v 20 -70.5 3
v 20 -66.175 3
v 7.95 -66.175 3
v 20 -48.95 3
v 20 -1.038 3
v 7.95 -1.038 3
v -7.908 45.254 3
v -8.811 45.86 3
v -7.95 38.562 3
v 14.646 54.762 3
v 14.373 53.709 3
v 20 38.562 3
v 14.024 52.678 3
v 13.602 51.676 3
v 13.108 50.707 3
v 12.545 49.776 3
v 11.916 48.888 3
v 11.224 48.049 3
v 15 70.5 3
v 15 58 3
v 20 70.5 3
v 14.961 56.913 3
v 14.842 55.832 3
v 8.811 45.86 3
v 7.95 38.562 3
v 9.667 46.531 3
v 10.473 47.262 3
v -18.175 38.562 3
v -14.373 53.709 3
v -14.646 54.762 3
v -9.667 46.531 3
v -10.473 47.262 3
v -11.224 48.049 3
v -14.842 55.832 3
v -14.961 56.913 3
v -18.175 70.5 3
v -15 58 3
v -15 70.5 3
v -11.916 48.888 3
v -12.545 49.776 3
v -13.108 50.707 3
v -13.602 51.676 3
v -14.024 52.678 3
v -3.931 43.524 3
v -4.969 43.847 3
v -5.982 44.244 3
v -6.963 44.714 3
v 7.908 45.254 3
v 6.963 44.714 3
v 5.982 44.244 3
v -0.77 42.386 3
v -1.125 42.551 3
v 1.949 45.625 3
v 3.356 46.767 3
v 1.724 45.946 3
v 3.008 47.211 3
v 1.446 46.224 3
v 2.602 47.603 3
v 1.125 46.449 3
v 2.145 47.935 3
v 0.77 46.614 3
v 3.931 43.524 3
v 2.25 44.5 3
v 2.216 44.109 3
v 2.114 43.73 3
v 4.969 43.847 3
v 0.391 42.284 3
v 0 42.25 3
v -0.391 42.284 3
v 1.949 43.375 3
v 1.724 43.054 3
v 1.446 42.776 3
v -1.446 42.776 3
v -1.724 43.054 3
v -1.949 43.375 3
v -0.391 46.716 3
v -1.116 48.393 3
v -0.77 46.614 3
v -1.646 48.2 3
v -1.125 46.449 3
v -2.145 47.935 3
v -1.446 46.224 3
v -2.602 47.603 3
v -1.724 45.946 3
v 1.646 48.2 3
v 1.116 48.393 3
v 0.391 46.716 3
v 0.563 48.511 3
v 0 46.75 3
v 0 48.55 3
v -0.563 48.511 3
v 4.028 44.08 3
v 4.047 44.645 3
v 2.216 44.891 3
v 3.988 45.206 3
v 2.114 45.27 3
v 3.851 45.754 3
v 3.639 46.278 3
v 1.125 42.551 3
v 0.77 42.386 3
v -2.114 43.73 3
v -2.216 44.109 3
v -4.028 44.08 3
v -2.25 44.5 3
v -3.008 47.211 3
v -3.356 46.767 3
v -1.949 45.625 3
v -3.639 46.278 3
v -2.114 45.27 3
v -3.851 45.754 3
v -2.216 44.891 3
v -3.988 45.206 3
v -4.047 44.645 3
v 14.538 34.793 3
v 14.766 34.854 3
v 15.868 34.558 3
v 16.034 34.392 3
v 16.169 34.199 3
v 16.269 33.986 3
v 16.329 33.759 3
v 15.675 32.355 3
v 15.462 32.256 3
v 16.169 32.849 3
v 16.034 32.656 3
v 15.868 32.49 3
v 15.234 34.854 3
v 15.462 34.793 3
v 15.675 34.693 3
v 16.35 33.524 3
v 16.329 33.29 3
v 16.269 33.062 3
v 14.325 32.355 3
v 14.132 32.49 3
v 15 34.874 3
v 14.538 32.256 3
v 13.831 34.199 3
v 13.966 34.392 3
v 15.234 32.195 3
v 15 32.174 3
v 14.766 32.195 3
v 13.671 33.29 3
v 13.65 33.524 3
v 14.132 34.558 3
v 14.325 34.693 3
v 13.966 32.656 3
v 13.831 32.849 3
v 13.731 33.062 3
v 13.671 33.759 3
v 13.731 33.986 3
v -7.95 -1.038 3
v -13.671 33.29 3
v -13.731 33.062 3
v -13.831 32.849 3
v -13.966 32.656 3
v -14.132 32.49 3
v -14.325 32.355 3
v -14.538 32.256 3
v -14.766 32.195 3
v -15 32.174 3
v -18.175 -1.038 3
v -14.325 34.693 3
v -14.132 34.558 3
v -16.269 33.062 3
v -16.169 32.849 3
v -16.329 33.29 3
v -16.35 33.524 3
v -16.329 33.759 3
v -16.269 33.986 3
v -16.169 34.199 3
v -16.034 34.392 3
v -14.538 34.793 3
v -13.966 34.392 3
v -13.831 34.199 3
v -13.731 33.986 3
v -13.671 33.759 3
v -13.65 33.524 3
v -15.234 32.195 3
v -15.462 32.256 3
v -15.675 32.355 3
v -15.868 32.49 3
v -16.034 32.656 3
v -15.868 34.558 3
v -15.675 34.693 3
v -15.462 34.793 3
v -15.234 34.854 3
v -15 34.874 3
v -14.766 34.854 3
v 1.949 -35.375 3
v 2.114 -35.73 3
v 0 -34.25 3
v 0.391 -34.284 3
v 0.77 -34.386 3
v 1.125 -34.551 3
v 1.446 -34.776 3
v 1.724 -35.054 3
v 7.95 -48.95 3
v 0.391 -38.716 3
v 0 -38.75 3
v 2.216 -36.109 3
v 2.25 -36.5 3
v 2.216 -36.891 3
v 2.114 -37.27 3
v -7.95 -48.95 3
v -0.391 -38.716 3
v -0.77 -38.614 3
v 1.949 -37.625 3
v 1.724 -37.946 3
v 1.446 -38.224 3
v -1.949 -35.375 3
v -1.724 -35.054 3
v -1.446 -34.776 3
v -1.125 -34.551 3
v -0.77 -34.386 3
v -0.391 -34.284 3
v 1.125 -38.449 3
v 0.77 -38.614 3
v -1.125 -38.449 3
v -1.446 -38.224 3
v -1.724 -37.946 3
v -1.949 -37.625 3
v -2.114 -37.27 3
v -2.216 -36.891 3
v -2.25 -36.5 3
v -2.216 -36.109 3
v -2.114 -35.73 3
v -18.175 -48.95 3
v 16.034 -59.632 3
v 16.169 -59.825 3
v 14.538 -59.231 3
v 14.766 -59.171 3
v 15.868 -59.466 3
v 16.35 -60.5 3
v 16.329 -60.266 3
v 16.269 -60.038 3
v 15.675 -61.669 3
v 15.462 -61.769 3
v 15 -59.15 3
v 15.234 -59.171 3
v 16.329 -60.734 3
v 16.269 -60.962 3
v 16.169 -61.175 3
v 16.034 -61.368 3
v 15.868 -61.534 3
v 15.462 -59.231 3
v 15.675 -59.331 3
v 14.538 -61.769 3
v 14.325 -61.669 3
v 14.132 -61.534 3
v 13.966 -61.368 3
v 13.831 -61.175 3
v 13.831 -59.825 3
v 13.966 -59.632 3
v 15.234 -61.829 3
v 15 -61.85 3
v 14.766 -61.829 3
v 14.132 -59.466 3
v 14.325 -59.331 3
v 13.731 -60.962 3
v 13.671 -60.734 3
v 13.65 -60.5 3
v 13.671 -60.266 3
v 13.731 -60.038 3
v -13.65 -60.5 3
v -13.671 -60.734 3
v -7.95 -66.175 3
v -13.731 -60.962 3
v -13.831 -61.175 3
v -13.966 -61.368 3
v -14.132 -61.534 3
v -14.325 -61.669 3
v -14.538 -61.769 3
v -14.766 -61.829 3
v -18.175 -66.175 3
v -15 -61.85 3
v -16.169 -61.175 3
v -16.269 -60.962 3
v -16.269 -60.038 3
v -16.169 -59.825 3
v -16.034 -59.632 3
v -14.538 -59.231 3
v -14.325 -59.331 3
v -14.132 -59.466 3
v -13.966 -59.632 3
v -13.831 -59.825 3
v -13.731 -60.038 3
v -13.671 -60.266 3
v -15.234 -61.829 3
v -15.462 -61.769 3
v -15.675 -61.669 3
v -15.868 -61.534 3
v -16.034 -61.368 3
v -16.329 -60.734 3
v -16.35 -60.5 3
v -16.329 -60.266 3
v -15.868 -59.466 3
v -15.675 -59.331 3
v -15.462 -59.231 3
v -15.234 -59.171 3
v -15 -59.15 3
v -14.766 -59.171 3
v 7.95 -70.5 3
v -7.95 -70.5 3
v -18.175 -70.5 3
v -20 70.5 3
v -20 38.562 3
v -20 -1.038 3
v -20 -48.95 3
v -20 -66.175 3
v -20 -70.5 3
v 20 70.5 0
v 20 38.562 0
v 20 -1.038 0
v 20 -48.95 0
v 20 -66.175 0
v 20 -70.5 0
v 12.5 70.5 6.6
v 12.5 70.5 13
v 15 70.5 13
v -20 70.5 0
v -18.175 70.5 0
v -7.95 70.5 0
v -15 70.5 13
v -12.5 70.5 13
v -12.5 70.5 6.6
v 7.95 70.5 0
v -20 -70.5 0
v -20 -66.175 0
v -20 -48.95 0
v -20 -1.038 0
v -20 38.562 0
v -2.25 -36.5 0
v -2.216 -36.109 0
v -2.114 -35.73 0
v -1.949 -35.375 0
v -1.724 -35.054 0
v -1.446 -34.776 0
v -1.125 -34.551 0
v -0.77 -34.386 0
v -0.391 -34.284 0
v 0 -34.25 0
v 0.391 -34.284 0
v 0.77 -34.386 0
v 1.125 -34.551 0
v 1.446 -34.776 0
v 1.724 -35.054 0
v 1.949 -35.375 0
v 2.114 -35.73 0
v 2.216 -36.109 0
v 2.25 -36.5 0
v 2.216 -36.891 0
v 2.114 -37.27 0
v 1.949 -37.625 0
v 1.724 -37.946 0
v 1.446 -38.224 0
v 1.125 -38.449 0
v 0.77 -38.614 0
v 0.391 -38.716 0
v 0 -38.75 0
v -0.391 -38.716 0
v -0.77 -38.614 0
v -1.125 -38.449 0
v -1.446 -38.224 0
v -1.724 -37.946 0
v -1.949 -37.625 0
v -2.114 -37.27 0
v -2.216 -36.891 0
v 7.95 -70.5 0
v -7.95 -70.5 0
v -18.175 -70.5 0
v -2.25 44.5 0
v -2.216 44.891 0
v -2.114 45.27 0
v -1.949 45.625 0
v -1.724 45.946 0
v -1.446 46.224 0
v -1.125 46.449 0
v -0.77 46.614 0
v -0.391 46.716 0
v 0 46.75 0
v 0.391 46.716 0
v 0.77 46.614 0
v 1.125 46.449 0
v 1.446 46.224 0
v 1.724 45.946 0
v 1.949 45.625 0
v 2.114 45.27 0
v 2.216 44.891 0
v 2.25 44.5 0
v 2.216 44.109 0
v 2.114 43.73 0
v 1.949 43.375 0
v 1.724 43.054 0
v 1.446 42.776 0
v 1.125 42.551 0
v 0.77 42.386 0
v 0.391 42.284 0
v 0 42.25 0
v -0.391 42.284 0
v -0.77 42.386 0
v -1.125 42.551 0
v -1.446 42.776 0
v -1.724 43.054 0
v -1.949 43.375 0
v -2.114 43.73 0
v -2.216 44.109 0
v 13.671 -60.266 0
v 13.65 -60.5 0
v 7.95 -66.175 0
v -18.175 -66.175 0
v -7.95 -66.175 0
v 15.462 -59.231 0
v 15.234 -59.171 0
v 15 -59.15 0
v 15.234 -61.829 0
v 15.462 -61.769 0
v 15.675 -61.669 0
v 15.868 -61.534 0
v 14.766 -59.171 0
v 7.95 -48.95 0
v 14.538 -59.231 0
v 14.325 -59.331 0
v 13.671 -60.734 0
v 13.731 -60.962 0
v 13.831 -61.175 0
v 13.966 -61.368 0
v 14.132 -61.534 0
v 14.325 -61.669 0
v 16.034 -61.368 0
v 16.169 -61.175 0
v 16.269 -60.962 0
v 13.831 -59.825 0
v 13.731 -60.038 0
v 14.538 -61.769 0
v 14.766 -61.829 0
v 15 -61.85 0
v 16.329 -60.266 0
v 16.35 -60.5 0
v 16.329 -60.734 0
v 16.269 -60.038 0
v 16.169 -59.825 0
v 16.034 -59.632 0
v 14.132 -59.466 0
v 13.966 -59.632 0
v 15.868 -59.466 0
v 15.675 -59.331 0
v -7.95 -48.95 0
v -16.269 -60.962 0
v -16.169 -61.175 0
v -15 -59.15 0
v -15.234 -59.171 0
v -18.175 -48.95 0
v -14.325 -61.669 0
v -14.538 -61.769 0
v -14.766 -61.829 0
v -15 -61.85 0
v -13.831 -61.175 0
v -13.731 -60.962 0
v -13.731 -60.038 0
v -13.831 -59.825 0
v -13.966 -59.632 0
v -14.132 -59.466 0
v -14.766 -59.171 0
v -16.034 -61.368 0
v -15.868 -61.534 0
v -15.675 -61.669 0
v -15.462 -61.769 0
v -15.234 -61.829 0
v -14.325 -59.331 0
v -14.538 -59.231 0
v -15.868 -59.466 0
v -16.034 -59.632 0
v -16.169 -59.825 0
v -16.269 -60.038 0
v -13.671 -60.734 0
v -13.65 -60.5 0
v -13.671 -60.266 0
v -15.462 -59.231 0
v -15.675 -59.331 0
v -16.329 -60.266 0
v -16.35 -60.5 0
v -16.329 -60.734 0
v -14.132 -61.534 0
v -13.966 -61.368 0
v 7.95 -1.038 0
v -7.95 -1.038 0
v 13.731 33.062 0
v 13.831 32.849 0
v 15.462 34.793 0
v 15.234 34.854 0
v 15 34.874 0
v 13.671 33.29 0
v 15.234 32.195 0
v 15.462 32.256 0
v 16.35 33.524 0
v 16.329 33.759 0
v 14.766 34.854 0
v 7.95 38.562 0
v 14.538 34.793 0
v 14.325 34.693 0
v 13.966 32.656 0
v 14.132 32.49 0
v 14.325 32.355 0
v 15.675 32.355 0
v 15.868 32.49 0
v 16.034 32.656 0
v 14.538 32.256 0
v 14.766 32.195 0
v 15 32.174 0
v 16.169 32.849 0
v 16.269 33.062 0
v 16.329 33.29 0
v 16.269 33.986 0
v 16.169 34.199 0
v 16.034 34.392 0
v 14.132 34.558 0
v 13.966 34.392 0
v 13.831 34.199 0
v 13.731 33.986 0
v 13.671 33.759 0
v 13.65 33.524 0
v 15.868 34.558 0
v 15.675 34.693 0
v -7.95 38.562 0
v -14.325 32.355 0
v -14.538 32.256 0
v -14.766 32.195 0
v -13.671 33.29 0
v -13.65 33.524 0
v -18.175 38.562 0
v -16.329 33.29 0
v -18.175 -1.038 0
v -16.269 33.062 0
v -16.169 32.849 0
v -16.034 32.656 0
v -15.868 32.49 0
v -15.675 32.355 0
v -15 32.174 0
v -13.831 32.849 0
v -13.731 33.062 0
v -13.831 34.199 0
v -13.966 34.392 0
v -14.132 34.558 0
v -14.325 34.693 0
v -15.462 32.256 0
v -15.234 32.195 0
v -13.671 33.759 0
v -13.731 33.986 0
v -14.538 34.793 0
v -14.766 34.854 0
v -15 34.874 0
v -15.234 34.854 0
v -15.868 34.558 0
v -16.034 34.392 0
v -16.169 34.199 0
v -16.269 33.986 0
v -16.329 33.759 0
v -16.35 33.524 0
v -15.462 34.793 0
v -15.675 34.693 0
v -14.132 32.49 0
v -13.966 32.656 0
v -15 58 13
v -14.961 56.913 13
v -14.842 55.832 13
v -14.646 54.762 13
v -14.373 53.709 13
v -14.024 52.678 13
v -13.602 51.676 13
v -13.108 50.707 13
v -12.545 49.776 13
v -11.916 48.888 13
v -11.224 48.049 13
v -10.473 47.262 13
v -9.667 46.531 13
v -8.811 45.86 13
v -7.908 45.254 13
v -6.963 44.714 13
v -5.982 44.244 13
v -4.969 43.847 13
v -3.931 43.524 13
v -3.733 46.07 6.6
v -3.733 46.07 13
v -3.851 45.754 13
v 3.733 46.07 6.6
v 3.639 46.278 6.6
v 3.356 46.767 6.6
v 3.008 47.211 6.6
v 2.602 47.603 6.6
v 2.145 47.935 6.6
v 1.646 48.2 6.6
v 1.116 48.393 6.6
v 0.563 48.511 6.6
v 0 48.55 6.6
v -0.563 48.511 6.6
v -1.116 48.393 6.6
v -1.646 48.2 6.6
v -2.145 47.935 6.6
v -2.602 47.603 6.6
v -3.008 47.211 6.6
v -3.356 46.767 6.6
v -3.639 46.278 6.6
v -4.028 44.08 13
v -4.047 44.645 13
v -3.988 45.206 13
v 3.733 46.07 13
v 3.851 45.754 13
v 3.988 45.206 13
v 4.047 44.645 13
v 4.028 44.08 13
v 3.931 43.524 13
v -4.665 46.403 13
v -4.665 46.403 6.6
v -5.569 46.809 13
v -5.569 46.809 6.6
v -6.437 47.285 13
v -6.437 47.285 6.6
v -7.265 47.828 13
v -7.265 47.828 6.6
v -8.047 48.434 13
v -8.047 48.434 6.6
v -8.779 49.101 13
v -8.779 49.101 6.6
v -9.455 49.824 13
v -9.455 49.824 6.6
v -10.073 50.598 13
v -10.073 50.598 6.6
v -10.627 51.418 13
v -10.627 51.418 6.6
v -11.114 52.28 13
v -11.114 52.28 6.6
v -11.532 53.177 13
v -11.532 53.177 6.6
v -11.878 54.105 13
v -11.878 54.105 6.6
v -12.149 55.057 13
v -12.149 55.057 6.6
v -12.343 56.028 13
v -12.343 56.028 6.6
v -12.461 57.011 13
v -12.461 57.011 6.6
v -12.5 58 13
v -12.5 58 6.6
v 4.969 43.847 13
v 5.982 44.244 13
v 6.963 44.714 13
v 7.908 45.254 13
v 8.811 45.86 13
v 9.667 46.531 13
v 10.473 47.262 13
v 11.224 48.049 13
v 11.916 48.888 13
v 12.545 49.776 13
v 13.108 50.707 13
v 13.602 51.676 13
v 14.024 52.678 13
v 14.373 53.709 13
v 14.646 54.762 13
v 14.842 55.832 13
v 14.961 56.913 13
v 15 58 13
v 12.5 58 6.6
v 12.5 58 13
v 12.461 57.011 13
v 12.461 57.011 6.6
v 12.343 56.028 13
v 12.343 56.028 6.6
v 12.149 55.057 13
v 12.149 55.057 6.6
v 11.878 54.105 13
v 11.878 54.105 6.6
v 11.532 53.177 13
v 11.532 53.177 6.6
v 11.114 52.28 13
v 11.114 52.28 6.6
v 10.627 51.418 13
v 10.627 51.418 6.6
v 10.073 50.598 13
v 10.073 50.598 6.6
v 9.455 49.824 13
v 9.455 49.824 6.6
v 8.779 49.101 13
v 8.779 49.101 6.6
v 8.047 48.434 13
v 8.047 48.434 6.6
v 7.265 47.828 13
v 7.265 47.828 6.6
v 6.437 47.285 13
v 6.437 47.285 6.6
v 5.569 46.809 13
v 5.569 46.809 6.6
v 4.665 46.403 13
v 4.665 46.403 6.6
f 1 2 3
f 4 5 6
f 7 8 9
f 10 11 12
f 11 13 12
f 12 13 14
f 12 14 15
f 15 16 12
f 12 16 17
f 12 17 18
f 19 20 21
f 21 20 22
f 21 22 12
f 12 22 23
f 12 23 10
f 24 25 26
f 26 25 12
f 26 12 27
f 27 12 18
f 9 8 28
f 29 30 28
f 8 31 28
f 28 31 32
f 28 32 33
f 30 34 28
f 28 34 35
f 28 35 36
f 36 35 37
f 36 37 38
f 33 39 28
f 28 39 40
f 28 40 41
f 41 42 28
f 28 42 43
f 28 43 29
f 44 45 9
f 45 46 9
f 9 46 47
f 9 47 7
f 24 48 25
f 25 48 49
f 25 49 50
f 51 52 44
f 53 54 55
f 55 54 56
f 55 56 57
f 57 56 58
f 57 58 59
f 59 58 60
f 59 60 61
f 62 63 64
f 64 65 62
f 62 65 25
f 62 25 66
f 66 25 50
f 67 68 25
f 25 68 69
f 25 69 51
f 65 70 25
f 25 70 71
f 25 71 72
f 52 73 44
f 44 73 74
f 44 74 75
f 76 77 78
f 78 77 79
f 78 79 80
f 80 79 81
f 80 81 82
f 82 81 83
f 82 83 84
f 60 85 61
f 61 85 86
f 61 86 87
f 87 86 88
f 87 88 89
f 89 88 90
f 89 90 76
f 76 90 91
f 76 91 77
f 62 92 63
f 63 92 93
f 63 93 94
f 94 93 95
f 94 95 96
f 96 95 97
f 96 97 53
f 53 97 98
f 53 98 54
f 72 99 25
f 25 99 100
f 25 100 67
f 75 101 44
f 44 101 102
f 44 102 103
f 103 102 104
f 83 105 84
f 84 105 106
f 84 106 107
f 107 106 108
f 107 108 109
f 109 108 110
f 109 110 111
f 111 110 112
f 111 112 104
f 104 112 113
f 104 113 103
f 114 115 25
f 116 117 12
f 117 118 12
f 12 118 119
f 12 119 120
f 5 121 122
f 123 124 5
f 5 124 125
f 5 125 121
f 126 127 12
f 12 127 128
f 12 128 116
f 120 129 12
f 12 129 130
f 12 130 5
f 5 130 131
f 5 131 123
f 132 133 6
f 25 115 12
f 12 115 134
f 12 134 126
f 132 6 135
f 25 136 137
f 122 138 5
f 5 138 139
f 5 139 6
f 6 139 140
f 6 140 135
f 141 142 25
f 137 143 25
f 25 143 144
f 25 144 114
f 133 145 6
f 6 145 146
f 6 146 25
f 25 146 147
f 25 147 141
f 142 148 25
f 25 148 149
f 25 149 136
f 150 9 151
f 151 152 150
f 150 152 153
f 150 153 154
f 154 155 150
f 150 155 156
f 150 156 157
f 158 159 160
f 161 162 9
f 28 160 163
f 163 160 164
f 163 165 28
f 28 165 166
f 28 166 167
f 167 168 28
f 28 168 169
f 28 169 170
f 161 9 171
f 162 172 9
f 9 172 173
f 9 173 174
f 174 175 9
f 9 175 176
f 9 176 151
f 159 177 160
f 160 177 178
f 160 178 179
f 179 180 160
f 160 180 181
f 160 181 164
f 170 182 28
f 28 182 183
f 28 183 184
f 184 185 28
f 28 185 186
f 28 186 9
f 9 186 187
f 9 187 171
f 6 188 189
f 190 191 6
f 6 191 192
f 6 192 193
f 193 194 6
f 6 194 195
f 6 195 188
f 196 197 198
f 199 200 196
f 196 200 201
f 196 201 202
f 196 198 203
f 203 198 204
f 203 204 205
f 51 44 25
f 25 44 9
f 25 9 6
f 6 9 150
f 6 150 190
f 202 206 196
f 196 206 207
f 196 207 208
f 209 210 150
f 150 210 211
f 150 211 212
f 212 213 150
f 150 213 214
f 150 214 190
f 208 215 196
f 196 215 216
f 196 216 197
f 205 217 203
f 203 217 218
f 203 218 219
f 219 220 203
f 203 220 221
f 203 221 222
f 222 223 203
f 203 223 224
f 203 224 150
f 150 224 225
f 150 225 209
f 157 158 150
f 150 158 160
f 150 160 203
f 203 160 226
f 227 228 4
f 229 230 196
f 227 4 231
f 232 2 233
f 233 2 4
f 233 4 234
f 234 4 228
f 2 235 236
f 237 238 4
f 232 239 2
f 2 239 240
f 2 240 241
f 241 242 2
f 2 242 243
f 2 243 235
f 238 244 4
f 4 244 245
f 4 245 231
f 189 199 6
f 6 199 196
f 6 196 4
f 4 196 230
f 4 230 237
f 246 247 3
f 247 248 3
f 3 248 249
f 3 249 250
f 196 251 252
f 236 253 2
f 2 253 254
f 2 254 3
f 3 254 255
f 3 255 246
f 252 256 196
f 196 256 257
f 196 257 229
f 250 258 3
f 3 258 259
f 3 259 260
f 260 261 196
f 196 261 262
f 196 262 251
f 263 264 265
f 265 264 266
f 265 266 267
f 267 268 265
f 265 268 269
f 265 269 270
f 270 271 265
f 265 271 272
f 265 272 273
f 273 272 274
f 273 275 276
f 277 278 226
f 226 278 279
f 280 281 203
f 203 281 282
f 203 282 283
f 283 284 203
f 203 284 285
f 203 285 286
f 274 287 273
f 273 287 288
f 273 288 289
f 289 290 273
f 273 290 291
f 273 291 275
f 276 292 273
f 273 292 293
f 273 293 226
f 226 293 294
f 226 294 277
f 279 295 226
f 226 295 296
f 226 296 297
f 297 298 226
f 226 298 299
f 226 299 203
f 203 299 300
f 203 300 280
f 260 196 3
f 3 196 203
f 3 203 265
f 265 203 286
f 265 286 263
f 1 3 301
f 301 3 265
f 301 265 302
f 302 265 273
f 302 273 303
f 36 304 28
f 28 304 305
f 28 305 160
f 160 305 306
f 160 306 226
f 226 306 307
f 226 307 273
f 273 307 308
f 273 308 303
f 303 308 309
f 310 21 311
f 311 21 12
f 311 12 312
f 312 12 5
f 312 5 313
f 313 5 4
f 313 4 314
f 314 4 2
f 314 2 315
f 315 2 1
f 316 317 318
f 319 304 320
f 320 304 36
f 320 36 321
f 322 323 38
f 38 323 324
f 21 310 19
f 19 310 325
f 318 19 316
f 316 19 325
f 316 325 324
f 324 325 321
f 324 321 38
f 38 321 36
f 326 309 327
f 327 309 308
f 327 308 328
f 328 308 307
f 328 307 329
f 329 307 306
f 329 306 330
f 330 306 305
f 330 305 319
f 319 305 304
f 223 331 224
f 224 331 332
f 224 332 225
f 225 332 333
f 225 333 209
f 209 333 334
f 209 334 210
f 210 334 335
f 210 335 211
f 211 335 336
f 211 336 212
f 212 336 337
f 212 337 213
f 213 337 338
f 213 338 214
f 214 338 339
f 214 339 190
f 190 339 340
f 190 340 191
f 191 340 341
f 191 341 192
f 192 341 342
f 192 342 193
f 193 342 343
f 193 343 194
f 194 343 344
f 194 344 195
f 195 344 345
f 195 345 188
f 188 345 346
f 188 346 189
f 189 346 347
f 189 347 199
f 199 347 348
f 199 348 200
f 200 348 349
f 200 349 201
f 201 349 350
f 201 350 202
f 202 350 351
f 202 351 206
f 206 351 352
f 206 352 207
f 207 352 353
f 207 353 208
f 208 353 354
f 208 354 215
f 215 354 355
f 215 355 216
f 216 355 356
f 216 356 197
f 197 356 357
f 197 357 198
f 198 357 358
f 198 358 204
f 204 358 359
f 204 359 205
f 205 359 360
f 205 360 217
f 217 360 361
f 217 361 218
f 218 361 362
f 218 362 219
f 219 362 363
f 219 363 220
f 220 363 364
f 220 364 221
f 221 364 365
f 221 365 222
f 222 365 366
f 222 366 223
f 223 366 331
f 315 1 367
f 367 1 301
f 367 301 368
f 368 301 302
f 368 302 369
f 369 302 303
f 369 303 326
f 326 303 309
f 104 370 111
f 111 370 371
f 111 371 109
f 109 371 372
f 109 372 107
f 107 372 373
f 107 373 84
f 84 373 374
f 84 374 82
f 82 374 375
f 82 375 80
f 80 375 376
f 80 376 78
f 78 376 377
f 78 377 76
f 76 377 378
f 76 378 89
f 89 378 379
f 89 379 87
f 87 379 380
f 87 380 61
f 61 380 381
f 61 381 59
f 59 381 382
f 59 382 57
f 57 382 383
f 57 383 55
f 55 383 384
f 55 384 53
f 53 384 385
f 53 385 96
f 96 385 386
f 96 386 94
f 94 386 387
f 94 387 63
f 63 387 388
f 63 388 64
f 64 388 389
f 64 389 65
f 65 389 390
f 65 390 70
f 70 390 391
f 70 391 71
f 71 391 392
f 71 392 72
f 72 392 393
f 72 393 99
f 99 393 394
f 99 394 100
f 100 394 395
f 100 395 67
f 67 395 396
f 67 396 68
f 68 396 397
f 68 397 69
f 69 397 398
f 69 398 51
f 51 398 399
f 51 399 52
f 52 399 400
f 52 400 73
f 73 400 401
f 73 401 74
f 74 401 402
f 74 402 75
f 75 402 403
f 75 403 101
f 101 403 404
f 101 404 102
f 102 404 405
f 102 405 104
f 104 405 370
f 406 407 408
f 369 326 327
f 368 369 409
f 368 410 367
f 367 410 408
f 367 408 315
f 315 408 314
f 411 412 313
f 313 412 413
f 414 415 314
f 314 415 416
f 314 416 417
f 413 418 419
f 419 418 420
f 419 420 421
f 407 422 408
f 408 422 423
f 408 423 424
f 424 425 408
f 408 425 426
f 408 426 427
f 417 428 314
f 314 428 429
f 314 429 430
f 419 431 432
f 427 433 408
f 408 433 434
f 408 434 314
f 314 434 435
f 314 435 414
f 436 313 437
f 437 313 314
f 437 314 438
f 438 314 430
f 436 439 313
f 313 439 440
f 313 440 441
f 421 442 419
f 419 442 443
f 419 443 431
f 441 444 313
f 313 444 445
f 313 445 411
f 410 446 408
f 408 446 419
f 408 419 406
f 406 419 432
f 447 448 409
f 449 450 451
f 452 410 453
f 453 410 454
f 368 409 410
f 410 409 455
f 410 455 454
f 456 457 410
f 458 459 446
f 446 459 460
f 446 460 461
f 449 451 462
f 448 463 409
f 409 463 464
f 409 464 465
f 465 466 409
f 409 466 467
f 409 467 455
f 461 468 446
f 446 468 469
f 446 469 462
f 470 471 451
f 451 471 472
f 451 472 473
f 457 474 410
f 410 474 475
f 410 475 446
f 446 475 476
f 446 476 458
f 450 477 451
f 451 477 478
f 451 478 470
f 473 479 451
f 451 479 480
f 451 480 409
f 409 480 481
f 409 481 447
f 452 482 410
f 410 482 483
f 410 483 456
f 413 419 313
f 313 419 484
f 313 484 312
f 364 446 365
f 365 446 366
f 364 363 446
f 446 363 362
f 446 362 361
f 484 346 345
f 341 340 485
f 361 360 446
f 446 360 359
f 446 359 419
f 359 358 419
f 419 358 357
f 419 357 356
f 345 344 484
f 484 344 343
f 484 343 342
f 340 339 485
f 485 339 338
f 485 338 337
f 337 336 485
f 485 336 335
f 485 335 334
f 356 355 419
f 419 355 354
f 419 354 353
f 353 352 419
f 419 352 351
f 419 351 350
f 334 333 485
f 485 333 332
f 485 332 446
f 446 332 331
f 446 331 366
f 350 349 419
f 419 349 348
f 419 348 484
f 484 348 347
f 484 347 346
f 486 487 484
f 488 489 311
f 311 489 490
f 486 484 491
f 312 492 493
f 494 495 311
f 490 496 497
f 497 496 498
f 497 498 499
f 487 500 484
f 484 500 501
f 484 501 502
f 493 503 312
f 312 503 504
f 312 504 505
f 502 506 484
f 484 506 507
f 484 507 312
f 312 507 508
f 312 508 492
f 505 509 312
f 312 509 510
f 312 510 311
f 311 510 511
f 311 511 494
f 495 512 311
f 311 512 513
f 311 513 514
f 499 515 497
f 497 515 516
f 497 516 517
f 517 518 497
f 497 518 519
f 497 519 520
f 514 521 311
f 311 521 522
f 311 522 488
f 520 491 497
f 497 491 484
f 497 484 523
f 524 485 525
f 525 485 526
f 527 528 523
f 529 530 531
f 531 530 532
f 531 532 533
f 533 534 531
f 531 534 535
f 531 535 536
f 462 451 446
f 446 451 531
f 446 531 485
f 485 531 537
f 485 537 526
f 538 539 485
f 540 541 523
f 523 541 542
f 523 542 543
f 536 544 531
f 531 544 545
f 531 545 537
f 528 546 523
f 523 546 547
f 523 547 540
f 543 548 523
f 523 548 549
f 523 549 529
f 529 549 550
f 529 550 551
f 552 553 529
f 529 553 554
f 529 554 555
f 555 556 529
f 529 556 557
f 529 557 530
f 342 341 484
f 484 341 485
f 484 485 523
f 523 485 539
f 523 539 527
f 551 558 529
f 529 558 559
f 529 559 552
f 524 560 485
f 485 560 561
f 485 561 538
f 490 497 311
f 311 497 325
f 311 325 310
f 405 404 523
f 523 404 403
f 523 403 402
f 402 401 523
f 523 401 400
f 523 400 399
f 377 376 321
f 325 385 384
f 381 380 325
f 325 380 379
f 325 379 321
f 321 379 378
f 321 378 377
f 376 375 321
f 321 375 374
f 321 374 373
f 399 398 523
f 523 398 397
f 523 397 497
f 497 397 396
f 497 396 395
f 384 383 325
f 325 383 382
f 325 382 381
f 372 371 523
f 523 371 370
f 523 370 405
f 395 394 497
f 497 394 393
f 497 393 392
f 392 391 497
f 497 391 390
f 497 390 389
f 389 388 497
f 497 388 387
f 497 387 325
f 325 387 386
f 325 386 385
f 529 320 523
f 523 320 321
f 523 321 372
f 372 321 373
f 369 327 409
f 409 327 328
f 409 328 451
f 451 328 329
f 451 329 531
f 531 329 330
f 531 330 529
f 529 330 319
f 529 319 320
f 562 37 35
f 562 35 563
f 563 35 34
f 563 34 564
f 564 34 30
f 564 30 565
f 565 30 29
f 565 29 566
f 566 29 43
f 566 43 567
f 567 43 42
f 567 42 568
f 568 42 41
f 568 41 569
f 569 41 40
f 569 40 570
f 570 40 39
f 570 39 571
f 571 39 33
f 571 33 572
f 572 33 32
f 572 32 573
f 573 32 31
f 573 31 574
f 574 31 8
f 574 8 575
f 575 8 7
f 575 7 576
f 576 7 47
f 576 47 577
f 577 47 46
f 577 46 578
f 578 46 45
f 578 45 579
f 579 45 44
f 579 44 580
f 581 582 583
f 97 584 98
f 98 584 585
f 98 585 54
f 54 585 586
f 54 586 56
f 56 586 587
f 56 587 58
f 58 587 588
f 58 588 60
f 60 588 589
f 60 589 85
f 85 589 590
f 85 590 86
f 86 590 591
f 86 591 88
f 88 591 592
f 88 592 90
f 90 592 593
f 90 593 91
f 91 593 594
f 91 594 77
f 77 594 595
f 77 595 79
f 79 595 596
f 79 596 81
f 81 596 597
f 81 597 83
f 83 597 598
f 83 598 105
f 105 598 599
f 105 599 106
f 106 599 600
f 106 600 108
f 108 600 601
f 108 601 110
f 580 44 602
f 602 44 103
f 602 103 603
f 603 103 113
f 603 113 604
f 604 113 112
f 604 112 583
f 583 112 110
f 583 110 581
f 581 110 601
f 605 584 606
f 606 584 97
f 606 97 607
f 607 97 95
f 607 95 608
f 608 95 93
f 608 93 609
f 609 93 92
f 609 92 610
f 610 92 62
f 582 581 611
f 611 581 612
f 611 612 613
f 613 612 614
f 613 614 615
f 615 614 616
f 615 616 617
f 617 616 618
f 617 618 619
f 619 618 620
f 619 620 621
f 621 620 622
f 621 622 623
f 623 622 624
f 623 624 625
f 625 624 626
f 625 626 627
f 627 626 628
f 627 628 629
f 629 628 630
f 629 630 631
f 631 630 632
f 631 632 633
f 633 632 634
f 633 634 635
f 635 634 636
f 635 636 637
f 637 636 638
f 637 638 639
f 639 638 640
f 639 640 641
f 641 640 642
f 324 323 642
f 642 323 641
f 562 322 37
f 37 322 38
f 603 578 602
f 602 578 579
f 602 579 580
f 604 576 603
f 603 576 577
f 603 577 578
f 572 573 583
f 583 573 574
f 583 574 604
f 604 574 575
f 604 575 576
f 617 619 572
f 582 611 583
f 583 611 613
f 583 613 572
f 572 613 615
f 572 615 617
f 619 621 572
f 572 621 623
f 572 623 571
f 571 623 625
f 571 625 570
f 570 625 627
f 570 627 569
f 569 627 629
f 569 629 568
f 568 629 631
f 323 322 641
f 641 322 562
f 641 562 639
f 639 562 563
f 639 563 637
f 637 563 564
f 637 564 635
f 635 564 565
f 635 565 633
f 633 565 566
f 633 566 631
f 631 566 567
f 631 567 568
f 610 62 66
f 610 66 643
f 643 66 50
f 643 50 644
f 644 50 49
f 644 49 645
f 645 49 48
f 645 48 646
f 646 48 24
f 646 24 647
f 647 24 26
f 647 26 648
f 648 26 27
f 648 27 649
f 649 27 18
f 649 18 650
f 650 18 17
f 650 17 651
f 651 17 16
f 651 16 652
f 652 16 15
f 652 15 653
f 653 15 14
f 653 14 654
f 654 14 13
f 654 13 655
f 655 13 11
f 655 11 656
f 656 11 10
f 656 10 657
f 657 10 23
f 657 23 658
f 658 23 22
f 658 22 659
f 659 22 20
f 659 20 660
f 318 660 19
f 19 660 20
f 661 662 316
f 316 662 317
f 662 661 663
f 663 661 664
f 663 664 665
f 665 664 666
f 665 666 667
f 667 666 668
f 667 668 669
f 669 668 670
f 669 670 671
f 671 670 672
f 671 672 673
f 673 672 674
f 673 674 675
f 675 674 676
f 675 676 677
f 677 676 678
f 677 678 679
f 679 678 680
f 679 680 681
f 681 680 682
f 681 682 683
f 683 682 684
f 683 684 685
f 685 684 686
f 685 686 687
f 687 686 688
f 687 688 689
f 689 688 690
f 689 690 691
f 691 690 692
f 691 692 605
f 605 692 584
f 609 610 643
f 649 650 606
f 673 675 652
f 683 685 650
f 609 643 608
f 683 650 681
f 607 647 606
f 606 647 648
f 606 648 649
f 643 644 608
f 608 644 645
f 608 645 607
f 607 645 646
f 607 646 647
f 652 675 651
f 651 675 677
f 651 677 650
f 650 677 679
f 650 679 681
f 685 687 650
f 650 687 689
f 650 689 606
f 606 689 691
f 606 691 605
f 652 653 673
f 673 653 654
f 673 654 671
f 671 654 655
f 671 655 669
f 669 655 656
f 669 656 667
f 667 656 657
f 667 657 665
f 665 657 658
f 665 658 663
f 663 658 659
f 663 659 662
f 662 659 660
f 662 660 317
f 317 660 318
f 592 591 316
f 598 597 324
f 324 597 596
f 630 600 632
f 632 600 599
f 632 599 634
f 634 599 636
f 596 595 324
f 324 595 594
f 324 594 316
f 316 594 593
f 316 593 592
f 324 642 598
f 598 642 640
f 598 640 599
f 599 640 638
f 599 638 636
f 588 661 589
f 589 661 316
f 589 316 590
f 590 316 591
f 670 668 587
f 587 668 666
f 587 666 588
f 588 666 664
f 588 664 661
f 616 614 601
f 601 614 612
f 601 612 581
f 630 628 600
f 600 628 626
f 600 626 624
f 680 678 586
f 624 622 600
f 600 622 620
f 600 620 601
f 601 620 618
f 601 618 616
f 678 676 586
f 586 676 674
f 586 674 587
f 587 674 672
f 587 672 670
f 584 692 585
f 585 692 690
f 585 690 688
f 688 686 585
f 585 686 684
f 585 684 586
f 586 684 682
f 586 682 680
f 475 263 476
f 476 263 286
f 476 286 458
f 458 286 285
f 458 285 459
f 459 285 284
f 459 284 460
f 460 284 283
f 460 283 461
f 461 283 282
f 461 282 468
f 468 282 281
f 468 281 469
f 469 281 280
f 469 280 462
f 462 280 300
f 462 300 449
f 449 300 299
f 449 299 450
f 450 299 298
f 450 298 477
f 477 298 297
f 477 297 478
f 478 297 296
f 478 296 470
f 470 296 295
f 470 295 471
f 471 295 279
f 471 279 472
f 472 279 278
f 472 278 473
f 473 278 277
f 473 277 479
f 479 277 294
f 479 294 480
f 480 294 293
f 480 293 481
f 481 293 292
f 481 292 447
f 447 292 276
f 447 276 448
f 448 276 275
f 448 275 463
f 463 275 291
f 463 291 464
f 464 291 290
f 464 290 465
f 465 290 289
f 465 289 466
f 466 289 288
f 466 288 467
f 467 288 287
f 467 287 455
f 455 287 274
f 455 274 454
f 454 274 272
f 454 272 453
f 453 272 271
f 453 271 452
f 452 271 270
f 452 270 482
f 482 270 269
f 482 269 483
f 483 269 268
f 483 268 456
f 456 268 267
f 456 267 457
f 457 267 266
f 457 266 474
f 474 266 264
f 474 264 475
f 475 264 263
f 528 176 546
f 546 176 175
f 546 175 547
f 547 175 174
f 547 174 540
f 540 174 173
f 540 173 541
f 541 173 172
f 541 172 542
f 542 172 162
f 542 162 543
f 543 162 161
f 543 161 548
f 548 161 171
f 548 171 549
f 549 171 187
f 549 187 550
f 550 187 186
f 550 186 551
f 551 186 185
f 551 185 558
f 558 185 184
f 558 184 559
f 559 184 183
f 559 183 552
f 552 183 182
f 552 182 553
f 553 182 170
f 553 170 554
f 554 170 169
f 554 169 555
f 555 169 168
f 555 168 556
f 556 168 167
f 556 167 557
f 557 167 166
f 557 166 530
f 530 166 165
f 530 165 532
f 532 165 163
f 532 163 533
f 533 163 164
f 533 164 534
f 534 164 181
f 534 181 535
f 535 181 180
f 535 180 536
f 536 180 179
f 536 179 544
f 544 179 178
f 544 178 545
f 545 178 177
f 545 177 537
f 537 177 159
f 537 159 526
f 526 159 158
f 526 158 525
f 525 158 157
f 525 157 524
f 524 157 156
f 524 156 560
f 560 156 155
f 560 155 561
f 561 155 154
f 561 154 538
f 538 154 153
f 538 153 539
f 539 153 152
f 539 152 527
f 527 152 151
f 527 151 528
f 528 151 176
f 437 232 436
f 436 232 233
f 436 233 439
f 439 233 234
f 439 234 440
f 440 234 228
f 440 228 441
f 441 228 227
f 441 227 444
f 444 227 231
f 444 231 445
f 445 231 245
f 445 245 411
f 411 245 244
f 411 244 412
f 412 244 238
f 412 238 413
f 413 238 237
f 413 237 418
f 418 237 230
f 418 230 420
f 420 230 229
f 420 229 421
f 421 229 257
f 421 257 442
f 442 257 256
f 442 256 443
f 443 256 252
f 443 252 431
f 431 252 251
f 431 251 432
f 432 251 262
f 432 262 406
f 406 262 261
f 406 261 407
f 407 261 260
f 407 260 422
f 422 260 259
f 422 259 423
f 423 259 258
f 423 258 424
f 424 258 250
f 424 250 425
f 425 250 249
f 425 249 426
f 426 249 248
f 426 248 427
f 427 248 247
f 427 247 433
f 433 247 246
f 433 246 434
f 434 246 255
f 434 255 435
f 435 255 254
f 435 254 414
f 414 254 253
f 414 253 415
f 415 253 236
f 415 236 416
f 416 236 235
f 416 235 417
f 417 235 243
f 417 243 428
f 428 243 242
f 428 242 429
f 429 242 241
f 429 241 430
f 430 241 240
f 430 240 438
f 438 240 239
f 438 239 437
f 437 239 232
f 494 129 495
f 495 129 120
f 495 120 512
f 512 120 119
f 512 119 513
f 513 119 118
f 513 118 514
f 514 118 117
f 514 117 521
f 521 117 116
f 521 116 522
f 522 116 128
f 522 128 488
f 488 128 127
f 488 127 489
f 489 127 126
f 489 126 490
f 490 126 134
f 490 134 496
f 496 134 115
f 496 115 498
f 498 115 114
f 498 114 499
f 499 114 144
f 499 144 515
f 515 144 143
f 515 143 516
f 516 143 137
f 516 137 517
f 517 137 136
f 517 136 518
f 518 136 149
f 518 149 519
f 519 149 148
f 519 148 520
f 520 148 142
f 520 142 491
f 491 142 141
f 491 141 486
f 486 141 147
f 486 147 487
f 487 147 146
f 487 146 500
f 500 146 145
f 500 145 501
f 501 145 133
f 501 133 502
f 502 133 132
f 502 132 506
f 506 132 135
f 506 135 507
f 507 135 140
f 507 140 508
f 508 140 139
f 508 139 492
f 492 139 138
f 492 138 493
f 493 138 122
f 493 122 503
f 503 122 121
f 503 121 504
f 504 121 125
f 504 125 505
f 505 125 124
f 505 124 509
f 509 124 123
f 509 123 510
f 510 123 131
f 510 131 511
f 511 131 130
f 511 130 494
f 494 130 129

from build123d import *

# Parameters (mm, degrees)
SCHIZZO1_W                   = 40
SCHIZZO1_H                   = 141
SCHIZZO1_R                   = 2.25
ESTRUSIONE_ESTRUSIONE4_DEPTH = 3
ESTRUSIONE_ESTRUSIONE5_DEPTH = 10
ESTRUSIONE_ESTRUSIONE6_DEPTH = 3.6
FORO_PER_VITE_M2_5_1_D       = 2.7


with BuildPart() as part:
    # Schizzo1 → Estrusione-Estrusione4 (new body)
    with BuildSketch(Plane.XY):
        Rectangle(SCHIZZO1_W, SCHIZZO1_H)
        with Locations((0, 44.5)):
            Circle(SCHIZZO1_R, mode=Mode.SUBTRACT)
        with Locations((0, -36.5)):
            Circle(SCHIZZO1_R, mode=Mode.SUBTRACT)
    extrude(amount=ESTRUSIONE_ESTRUSIONE4_DEPTH)

    # Schizzo2 → Estrusione-Estrusione5 (add)
    with BuildSketch(Plane.XY.offset(3)):
        with BuildLine():
            Line((15, 58), (15, 70.5))
            Line((15, 70.5), (12.5, 70.5))
            Line((12.5, 70.5), (12.5, 58))
            ThreePointArc((12.5, 58), (10.072584945, 50.597768409), (3.733114796, 46.070462963))
            ThreePointArc((3.733114796, 46.070462963), (4.03786402, 44.813295631), (3.930680514, 43.524166667))
            ThreePointArc((3.930680514, 43.524166667), (11.915540435, 48.888474544), (15, 58))
        make_face()
        with BuildLine():
            Line((-12.5, 58), (-12.5, 70.5))
            Line((-12.5, 70.5), (-15, 70.5))
            Line((-15, 70.5), (-15, 58))
            ThreePointArc((-15, 58), (-11.915540435, 48.888474544), (-3.930680514, 43.524166667))
            ThreePointArc((-3.930680514, 43.524166667), (-4.03786402, 44.813295631), (-3.733114796, 46.070462963))
            ThreePointArc((-3.733114796, 46.070462963), (-10.072584945, 50.597768409), (-12.5, 58))
        make_face()
    extrude(amount=ESTRUSIONE_ESTRUSIONE5_DEPTH)

    # Schizzo3 → Estrusione-Estrusione6 (add)
    with BuildSketch(Plane.XY.offset(3)):
        with BuildLine():
            Line((12.5, 58), (12.5, 70.5))
            Line((12.5, 70.5), (-12.5, 70.5))
            Line((-12.5, 70.5), (-12.5, 58))
            ThreePointArc((-12.5, 58), (-10.072584945, 50.597768409), (-3.733114796, 46.070462963))
            ThreePointArc((-3.733114796, 46.070462963), (0, 48.55), (3.733114796, 46.070462963))
            ThreePointArc((3.733114796, 46.070462963), (10.072584945, 50.597768409), (12.5, 58))
        make_face()
    extrude(amount=ESTRUSIONE_ESTRUSIONE6_DEPTH)

    # Foro per Vite M2.5-1 (through all)
    with Locations(Plane(origin=(-15, 33.524166667, 3), x_dir=(1, 0, 0), z_dir=(0, 0, 1))):
        with Locations((0, 0), (0, -94.024166667)):
            foro_per_vite_m2_5_1 = Hole(FORO_PER_VITE_M2_5_1_D / 2)

    # Specchia1: Foro per Vite M2.5-1 across plane
    add(foro_per_vite_m2_5_1.mirror(Plane(origin=(0, 0, 0), x_dir=(0, 0, 1), z_dir=(1, 0, 0))), mode=Mode.SUBTRACT)


solid = part.part
